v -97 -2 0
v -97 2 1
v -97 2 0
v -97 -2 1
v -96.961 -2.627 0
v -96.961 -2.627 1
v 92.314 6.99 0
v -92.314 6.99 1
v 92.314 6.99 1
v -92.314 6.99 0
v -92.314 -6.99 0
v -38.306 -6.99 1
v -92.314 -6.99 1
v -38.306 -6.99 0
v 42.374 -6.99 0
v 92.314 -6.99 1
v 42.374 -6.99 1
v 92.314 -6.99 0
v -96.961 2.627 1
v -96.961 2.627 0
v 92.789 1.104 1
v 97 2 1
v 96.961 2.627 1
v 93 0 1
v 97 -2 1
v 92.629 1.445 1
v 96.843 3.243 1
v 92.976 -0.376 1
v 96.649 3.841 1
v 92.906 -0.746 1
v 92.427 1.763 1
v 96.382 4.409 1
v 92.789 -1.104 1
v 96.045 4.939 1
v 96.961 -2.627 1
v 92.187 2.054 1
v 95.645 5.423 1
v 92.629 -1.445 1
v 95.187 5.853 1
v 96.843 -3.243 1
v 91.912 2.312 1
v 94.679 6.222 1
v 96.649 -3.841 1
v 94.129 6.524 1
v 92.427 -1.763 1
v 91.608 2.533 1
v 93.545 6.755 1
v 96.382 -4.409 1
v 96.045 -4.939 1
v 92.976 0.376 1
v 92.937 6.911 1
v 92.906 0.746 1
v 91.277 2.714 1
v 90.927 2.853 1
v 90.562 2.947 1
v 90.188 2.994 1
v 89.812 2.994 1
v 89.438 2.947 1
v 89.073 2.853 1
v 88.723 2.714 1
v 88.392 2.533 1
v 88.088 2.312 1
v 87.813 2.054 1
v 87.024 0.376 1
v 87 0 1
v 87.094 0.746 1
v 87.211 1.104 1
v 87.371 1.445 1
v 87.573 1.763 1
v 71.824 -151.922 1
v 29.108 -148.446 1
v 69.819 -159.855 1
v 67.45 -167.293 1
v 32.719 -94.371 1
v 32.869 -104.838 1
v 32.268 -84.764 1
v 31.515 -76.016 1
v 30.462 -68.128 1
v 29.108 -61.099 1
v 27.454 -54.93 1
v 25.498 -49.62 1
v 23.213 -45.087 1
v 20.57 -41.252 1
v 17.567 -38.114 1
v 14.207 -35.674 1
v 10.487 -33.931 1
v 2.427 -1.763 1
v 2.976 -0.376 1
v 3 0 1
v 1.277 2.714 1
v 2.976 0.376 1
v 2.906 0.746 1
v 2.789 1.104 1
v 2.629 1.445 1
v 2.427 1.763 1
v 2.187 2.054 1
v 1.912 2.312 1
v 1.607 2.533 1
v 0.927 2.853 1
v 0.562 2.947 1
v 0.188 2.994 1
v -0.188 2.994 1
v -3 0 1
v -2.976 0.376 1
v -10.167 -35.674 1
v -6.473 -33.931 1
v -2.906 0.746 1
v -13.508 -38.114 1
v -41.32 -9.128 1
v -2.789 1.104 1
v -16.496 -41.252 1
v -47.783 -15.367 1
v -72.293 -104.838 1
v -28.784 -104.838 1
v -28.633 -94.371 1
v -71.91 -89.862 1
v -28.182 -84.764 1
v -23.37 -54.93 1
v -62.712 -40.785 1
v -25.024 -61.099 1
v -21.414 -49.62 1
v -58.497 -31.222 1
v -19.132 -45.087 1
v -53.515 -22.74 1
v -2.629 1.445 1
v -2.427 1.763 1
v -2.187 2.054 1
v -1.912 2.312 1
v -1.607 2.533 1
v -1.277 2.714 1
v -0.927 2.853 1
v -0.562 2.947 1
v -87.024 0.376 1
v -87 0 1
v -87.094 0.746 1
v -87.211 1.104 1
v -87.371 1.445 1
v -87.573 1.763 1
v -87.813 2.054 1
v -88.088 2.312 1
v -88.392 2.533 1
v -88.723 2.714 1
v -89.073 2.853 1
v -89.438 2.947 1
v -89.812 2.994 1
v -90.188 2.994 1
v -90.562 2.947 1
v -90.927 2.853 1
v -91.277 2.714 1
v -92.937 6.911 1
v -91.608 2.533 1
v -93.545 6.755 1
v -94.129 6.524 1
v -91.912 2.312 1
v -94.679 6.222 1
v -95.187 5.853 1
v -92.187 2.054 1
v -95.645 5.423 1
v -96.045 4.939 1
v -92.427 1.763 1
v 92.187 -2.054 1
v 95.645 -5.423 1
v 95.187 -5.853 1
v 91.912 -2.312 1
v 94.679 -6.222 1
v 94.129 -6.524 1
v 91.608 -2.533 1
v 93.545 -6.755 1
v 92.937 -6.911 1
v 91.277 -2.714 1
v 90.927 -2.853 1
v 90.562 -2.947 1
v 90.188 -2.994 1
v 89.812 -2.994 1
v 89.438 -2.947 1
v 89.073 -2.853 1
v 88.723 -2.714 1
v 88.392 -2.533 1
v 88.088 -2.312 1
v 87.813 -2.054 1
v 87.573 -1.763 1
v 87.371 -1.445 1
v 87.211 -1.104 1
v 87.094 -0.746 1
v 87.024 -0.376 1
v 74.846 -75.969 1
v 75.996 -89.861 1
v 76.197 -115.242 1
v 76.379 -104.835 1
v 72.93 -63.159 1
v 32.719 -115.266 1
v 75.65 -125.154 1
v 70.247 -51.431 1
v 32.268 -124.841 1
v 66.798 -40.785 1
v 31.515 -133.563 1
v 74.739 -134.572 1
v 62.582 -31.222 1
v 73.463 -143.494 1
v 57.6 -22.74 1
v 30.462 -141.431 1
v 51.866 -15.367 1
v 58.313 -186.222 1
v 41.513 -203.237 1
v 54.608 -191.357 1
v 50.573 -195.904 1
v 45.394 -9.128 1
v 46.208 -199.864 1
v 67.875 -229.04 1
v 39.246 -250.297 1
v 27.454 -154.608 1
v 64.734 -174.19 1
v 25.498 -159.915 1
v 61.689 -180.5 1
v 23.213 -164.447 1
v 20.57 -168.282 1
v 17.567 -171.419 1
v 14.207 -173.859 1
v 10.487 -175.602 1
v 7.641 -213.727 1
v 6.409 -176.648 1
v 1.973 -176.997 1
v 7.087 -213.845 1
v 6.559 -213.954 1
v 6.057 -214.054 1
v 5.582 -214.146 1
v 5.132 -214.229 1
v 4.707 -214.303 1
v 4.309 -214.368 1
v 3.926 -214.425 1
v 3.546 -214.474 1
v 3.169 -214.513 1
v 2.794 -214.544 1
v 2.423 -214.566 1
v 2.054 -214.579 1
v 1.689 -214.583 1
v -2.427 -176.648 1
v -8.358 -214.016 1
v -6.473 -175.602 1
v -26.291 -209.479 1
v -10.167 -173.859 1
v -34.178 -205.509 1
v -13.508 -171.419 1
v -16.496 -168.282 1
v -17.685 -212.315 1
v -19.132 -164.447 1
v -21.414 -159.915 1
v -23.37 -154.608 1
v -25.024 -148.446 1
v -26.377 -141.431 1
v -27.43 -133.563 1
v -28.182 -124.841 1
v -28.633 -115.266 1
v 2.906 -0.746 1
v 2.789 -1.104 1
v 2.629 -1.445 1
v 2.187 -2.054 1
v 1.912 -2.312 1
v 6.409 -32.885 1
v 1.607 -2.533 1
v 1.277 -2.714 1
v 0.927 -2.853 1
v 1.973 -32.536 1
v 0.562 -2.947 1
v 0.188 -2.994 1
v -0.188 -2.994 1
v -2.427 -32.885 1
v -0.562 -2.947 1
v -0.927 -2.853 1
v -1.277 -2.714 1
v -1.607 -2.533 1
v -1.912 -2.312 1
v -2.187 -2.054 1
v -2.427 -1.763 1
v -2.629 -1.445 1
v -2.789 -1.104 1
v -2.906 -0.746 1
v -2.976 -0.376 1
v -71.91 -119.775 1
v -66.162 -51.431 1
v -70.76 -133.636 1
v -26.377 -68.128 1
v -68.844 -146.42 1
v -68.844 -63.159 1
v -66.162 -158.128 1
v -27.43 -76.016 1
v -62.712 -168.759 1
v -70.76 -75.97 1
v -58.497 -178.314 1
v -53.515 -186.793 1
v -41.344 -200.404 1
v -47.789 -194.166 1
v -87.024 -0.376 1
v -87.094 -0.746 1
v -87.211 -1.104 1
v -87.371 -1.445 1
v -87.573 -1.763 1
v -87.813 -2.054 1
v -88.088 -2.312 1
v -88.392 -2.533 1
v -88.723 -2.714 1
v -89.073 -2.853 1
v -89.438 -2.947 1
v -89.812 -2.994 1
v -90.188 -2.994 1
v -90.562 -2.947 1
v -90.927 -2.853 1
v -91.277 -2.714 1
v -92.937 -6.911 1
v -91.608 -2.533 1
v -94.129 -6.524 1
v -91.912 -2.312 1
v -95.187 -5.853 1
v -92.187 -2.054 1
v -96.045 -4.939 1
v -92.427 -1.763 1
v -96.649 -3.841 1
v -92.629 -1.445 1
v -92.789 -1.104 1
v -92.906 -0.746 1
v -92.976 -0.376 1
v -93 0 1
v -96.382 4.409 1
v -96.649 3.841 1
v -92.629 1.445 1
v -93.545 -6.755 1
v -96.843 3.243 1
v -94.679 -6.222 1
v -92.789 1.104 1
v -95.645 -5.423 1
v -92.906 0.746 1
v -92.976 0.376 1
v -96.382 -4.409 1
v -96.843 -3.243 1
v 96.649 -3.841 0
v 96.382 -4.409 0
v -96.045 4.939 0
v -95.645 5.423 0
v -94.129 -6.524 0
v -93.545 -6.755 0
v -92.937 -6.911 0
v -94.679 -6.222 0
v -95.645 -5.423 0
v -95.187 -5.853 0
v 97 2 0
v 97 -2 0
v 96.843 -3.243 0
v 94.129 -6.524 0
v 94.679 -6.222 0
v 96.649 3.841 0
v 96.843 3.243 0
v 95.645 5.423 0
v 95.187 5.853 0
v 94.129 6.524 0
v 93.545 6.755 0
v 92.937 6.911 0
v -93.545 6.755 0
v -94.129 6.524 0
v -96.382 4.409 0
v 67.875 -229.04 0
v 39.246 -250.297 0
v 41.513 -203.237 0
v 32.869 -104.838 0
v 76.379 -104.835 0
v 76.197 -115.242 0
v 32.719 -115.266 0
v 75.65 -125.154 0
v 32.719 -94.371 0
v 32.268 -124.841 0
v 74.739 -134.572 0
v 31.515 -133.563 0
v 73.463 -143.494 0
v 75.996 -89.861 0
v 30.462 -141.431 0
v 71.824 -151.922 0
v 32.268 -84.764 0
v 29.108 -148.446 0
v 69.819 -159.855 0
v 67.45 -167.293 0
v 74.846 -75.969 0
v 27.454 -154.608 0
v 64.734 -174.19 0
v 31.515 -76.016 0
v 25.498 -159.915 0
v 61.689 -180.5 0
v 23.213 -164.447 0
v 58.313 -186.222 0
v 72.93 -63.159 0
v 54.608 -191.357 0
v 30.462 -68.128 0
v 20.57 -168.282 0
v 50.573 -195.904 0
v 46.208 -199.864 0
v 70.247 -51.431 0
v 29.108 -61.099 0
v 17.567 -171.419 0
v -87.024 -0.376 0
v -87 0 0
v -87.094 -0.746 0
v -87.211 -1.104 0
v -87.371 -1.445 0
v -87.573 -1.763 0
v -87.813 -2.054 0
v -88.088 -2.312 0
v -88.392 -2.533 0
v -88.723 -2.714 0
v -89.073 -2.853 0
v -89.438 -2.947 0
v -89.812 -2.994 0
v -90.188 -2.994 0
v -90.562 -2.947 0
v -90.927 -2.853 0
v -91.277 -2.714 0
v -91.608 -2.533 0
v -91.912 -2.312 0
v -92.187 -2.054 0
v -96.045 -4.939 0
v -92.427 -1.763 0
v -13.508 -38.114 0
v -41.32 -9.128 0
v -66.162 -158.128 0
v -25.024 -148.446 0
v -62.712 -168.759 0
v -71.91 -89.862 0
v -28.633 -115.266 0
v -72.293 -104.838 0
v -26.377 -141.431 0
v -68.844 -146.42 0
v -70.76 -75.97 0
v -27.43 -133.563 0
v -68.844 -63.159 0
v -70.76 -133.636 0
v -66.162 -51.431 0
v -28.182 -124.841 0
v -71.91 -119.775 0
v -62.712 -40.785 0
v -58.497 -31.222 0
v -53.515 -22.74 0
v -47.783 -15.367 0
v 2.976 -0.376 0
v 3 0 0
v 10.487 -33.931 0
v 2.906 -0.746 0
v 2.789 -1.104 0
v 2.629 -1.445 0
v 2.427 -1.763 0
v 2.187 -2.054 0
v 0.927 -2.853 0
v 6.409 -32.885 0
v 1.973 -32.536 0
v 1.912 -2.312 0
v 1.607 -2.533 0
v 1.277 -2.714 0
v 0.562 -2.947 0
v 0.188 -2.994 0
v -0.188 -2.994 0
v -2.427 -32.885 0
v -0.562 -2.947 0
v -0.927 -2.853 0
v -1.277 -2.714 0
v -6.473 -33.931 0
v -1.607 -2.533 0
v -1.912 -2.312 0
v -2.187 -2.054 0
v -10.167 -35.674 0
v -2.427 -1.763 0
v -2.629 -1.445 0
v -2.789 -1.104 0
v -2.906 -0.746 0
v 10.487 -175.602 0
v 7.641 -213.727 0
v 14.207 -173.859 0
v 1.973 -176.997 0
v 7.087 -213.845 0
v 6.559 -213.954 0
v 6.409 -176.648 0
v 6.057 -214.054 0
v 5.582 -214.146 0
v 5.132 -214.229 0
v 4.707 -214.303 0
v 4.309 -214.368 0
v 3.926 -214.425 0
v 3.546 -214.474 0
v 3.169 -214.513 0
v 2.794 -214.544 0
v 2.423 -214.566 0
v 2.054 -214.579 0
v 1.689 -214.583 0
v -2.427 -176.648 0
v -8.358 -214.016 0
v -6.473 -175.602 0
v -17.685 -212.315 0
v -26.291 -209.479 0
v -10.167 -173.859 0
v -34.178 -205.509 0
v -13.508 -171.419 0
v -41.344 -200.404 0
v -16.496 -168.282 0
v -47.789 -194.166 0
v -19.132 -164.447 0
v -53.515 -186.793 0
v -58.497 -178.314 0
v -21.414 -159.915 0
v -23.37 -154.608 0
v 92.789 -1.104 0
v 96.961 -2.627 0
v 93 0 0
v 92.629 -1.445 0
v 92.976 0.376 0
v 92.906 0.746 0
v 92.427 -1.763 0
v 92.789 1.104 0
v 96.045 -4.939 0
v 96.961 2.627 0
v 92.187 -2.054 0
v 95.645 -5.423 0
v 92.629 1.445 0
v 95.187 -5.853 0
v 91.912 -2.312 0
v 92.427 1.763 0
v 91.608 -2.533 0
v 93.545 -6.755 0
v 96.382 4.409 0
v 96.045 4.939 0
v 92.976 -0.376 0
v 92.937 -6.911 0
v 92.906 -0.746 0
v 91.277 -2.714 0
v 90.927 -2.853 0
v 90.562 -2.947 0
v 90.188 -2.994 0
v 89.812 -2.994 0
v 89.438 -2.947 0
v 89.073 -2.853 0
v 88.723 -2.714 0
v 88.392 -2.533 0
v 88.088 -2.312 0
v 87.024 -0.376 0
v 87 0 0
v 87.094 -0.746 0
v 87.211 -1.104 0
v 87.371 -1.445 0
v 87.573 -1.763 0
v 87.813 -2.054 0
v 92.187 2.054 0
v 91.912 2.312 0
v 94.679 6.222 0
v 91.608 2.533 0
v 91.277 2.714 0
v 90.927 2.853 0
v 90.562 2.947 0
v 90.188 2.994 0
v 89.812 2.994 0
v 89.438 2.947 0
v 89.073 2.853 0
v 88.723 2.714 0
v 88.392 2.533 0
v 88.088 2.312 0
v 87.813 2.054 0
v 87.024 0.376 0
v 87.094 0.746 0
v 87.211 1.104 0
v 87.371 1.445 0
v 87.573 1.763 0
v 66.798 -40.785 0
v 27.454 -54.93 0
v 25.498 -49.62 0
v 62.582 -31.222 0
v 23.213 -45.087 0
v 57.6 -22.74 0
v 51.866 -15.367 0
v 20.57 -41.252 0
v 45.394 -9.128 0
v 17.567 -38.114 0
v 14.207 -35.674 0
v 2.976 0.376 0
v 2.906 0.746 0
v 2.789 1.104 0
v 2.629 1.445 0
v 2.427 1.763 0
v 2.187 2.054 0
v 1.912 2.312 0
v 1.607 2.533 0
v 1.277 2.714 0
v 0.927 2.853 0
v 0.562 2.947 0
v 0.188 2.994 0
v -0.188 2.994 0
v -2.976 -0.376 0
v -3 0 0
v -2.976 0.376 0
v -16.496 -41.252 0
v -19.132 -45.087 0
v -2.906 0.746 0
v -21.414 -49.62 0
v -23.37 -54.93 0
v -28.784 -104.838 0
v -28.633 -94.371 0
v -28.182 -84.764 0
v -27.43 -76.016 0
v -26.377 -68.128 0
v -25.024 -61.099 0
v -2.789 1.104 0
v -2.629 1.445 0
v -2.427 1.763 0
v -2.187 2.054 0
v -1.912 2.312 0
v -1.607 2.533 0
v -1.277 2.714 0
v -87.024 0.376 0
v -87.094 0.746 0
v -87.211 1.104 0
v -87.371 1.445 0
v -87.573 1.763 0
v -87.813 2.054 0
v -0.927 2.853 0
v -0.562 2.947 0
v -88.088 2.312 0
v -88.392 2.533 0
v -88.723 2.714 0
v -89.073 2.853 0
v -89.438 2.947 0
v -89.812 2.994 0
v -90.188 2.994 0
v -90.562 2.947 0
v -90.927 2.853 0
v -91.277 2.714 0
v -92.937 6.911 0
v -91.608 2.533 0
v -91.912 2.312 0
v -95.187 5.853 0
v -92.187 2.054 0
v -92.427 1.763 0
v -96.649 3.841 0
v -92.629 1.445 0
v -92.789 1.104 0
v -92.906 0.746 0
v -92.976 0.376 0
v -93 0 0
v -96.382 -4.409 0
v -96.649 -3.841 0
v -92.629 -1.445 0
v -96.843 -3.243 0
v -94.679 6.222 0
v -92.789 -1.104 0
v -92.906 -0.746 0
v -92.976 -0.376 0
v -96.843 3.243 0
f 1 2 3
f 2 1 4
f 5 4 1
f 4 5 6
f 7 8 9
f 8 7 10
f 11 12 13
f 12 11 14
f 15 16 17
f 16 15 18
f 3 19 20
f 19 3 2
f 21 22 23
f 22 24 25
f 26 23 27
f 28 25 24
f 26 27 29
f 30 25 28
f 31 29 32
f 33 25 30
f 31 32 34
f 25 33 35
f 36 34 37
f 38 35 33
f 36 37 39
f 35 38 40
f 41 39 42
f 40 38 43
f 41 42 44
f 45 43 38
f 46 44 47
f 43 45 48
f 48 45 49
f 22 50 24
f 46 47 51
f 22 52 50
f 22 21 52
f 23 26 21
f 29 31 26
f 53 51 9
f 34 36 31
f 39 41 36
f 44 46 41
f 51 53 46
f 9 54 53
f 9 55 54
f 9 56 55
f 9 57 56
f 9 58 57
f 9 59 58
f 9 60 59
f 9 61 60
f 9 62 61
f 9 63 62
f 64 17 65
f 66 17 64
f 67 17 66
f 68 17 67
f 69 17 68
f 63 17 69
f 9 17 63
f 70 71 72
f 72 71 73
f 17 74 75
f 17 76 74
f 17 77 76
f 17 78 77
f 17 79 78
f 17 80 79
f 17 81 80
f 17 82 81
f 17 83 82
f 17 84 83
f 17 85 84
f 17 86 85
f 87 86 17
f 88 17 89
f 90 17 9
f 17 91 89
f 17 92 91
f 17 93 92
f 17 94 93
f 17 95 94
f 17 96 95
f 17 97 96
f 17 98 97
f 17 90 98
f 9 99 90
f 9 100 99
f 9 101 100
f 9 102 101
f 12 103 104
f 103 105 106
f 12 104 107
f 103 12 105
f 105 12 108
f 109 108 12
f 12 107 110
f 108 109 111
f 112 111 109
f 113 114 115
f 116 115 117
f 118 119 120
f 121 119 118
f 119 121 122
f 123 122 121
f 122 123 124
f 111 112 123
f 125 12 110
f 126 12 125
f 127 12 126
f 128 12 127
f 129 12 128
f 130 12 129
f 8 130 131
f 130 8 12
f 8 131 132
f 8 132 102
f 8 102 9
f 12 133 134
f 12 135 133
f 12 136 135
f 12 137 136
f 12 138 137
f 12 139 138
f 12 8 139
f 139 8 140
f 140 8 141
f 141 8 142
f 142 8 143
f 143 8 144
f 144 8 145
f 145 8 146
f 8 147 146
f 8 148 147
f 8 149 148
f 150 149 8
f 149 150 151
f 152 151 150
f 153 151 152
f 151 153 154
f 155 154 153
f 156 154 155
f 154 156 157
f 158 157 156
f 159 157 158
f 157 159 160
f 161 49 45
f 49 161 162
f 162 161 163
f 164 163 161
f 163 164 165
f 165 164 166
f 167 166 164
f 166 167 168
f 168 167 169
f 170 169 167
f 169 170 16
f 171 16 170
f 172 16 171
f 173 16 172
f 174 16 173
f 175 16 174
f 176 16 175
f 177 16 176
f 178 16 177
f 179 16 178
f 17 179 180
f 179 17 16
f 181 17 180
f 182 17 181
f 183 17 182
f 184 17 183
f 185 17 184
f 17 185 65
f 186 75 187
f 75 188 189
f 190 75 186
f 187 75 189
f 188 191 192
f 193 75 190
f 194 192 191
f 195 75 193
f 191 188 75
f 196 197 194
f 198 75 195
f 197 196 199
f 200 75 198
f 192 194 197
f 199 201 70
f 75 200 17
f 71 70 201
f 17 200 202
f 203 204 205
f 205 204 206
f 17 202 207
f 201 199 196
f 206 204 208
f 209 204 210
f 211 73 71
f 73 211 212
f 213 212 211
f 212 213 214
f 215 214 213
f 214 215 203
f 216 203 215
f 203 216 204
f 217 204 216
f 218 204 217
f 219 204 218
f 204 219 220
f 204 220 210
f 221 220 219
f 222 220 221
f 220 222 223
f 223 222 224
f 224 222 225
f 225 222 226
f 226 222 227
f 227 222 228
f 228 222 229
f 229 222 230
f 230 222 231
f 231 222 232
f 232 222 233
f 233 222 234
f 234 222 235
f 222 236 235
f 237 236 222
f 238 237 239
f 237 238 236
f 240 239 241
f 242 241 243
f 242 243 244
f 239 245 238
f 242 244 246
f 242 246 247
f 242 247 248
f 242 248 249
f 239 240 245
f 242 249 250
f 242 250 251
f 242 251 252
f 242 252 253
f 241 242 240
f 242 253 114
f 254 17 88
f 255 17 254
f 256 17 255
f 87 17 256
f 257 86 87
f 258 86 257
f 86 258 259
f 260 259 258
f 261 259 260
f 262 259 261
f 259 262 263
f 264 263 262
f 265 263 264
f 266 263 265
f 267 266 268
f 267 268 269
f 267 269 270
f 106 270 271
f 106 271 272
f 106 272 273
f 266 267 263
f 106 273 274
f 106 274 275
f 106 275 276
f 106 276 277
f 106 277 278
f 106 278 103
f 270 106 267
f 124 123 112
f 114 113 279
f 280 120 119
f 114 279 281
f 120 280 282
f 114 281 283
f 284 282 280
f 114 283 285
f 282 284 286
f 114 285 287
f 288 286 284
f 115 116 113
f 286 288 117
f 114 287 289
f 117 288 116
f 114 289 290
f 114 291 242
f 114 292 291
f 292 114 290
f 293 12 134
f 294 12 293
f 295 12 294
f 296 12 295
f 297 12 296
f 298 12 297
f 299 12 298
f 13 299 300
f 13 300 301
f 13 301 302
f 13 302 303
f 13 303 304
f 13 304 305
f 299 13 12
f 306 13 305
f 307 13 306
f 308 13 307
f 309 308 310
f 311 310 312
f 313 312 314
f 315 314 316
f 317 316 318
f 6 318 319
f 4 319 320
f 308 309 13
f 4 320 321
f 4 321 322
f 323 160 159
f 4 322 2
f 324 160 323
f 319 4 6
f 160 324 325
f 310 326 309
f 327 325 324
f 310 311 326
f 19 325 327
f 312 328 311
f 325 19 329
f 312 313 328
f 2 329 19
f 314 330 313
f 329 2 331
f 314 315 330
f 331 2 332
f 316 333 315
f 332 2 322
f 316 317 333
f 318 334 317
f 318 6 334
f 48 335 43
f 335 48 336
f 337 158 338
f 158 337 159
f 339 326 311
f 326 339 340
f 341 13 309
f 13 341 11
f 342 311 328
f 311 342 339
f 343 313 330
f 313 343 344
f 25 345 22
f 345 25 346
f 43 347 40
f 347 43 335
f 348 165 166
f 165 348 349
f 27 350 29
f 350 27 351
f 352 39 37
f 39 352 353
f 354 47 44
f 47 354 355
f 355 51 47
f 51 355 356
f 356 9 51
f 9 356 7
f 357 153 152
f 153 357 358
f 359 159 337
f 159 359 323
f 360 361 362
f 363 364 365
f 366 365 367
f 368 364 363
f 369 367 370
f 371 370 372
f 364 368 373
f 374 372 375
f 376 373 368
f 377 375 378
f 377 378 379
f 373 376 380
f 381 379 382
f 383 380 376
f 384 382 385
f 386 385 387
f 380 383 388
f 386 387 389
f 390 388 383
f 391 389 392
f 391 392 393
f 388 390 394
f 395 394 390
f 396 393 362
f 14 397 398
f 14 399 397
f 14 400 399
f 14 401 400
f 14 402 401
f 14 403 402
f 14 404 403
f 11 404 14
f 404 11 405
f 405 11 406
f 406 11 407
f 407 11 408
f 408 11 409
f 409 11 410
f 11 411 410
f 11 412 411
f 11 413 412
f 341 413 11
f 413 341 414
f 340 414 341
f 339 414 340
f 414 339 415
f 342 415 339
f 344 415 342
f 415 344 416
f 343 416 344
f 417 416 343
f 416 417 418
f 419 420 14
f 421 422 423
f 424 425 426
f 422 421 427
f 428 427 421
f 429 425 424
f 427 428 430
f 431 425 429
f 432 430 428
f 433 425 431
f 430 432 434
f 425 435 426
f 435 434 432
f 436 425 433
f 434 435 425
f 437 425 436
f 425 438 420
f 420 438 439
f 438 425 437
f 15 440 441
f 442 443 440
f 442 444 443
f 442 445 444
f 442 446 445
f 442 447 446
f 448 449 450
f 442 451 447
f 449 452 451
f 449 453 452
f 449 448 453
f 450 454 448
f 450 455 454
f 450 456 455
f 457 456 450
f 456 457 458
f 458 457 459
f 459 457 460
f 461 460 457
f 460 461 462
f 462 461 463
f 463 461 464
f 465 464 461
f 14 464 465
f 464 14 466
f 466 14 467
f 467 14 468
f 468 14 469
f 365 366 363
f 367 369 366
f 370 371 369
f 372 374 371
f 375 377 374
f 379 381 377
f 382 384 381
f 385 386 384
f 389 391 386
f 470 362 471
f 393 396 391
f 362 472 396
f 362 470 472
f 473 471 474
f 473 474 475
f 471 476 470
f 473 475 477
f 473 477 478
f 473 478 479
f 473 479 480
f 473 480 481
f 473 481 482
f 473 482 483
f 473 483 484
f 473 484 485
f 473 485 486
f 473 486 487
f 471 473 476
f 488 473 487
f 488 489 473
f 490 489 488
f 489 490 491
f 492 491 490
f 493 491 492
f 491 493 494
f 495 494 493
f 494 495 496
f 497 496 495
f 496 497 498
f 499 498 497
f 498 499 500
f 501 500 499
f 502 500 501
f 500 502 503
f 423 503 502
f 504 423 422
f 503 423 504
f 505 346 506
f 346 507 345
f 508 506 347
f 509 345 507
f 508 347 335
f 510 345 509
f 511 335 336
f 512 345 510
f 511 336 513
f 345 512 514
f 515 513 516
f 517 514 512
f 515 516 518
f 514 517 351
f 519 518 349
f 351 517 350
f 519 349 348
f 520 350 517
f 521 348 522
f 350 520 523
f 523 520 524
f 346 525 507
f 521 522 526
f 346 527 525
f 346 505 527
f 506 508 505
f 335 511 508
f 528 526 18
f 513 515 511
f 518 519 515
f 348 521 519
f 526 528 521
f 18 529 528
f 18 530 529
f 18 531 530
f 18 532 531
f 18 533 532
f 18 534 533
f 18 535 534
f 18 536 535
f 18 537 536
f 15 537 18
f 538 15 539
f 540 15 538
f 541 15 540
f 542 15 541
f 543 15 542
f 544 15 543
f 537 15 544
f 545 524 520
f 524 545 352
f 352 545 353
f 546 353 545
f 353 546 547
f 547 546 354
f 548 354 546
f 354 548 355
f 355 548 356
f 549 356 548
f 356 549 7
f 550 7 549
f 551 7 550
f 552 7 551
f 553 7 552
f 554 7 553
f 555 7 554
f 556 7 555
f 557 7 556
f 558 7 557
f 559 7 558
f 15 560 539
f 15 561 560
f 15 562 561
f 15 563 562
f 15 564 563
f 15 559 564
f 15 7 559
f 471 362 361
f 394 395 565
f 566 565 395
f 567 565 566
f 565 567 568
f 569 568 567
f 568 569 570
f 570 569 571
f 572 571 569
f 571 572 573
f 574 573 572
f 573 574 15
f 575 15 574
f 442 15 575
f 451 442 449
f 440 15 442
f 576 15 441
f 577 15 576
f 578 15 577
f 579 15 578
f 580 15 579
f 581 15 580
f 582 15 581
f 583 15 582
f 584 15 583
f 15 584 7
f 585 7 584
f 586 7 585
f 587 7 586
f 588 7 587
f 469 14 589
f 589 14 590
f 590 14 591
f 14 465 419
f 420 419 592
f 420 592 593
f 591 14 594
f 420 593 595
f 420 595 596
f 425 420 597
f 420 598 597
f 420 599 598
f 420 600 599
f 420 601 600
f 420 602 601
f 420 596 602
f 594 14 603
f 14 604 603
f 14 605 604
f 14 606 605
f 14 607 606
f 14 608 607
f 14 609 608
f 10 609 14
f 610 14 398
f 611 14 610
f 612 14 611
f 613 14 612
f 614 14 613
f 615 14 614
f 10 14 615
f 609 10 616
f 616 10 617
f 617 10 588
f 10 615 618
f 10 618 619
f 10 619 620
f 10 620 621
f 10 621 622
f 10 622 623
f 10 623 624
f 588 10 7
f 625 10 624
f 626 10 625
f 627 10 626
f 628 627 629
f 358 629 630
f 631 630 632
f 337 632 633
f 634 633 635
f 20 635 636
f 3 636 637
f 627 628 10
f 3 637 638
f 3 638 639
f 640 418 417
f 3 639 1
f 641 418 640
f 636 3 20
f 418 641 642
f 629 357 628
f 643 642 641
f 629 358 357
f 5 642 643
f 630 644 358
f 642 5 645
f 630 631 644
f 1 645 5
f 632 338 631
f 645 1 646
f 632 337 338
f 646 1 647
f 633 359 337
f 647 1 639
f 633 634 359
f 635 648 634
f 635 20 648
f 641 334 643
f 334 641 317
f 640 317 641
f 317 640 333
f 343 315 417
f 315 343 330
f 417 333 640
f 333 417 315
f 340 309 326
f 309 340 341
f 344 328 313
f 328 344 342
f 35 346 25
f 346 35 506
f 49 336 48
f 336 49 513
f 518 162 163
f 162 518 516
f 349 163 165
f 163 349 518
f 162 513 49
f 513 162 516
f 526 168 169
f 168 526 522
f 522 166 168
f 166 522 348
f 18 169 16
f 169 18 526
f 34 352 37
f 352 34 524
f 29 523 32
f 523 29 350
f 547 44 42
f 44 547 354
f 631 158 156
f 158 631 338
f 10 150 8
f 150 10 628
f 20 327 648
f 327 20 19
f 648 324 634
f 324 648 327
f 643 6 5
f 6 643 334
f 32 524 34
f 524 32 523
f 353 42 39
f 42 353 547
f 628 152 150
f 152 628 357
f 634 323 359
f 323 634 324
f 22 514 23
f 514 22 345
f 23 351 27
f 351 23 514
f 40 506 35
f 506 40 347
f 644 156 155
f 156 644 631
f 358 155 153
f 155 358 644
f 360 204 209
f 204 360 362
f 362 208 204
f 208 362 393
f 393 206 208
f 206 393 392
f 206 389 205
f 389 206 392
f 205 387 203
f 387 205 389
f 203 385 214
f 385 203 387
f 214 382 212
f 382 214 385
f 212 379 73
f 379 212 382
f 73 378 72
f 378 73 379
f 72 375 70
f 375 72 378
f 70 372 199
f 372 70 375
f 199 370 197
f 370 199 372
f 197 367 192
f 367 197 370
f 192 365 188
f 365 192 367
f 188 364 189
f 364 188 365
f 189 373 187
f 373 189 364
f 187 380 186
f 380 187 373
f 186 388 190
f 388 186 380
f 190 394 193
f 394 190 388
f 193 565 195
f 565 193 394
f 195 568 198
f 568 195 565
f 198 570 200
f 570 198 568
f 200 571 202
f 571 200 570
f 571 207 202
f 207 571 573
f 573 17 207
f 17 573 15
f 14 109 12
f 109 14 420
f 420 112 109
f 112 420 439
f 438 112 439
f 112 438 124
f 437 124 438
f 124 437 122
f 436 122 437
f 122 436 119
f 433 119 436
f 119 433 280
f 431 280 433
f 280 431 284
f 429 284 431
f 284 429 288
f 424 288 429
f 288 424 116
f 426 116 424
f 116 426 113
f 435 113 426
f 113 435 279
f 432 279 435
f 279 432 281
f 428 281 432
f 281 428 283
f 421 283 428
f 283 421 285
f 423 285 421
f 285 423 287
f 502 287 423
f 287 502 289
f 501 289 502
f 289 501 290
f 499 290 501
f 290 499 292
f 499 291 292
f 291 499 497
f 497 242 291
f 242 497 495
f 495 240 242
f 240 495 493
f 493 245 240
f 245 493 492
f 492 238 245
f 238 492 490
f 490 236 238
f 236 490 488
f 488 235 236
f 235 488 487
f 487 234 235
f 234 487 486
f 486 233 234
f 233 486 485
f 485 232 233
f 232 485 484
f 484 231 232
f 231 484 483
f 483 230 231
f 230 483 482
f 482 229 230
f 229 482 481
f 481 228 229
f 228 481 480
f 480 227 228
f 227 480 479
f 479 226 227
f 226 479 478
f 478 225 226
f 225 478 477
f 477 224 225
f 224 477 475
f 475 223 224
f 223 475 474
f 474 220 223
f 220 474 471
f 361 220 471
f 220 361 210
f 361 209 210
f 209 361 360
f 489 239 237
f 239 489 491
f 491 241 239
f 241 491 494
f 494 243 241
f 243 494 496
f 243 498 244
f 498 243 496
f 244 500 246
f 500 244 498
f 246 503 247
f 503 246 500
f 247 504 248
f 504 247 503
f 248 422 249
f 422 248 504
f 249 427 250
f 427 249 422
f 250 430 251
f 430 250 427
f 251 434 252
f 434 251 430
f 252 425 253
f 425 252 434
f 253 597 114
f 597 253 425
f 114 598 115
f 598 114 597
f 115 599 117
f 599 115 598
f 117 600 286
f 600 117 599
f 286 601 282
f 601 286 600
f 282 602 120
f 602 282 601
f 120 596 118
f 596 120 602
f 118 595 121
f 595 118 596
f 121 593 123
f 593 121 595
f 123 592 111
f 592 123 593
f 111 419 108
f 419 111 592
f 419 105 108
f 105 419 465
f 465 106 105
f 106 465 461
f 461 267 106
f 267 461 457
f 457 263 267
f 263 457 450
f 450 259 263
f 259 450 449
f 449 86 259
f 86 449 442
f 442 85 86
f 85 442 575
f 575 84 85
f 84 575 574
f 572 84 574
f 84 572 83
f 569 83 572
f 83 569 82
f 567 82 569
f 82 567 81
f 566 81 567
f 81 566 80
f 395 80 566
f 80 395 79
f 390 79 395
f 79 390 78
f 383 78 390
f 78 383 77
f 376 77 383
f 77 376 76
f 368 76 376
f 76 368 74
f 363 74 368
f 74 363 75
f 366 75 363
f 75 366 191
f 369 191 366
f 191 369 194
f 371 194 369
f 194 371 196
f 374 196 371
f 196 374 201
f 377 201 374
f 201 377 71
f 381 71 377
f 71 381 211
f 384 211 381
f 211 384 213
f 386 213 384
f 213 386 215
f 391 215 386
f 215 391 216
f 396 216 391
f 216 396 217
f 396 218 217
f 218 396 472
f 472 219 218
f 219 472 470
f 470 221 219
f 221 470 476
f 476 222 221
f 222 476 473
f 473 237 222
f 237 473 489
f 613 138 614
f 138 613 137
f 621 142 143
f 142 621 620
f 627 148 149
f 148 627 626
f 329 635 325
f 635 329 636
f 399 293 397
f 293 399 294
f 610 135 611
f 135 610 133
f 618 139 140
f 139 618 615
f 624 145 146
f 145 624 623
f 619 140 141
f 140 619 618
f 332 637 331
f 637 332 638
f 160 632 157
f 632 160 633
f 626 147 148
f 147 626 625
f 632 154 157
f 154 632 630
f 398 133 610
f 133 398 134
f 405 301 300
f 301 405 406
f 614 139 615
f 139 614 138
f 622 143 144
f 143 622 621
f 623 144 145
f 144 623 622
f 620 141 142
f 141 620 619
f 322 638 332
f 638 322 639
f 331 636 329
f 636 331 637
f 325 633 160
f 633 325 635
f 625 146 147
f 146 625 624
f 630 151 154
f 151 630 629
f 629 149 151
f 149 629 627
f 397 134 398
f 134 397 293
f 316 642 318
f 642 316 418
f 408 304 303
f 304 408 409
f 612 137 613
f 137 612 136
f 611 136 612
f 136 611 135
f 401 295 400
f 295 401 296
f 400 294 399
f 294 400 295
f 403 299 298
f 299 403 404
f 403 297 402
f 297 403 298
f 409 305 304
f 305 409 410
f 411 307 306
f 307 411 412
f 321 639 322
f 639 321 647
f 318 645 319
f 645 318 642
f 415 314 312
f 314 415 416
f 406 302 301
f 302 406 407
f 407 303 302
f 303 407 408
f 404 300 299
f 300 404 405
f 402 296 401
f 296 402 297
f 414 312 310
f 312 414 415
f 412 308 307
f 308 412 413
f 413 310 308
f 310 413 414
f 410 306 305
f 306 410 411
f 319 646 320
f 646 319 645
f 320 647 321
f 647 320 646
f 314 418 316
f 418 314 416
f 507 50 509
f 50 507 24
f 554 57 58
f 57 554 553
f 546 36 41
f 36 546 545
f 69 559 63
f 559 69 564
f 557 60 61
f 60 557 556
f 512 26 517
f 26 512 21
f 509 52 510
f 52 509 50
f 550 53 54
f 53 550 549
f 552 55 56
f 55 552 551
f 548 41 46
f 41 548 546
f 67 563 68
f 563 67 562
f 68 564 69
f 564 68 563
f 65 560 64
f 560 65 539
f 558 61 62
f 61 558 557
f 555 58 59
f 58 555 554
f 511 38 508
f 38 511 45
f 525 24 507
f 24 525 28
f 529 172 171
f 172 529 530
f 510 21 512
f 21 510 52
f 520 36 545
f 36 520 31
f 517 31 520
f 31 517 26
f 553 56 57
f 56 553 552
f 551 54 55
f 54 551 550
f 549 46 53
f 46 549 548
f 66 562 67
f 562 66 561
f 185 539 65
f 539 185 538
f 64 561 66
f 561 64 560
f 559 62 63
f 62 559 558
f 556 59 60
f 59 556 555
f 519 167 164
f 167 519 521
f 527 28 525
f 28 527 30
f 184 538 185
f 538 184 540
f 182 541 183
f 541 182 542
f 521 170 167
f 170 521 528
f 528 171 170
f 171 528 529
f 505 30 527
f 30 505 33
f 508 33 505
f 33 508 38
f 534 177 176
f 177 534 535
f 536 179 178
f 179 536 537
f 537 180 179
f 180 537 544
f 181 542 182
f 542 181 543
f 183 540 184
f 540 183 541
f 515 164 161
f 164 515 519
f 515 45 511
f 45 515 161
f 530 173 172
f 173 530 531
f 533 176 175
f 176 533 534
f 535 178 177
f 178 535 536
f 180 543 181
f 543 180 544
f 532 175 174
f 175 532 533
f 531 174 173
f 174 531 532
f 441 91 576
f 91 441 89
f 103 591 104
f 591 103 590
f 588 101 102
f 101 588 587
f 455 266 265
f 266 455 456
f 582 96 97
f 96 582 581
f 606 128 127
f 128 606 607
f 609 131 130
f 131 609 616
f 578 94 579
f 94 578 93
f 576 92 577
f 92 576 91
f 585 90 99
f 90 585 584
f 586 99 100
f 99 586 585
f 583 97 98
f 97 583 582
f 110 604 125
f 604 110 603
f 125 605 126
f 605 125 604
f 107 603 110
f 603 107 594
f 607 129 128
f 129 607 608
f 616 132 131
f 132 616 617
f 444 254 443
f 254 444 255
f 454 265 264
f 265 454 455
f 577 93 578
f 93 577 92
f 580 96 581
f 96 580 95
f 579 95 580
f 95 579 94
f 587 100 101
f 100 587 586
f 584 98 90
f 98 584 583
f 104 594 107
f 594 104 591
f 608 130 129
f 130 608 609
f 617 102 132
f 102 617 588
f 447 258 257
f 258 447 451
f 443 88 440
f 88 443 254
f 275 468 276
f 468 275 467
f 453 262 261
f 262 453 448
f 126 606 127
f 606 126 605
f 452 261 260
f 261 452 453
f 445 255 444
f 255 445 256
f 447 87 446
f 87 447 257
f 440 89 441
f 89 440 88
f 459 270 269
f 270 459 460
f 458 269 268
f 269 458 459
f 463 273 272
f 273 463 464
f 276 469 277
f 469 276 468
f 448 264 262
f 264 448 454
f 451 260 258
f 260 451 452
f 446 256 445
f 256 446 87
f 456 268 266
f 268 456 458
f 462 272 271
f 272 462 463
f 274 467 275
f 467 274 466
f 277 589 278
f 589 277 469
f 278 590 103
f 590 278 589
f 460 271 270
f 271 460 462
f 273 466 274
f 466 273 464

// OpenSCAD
$fn = 50;


difference() {
	union() {
		translate(v = [0, 0, 0]) {
			rotate(a = [0, 0, 0]) {
				hull() {
					translate(v = [-92.0000000000, 2.0000000000, 0]) {
						rotate(a = [0, 0, 0]) {
							translate(v = [0, 0, 0]) {
								rotate(a = [0, 0, 0]) {
									cylinder(h = 1, r = 5);
								}
							}
						}
					}
					translate(v = [92.0000000000, 2.0000000000, 0]) {
						rotate(a = [0, 0, 0]) {
							translate(v = [0, 0, 0]) {
								rotate(a = [0, 0, 0]) {
									cylinder(h = 1, r = 5);
								}
							}
						}
					}
					translate(v = [-92.0000000000, -2.0000000000, 0]) {
						rotate(a = [0, 0, 0]) {
							translate(v = [0, 0, 0]) {
								rotate(a = [0, 0, 0]) {
									cylinder(h = 1, r = 5);
								}
							}
						}
					}
					translate(v = [92.0000000000, -2.0000000000, 0]) {
						rotate(a = [0, 0, 0]) {
							translate(v = [0, 0, 0]) {
								rotate(a = [0, 0, 0]) {
									cylinder(h = 1, r = 5);
								}
							}
						}
					}
				}
			}
		}
		translate(v = [0, 0, 0]) {
			rotate(a = [0, 0, 0]) {
				linear_extrude(height = 1) {
					text(font = "DejaVu Sans Mono:style=Bold", halign = "center", size = 209.0000000000, text = "Q", valign = "top");
				}
			}
		}
	}
	union() {
		translate(v = [-90.0000000000, 0.0000000000, -125.0000000000]) {
			rotate(a = [0, 0, 0]) {
				cylinder(h = 250, r = 3.0000000000);
			}
		}
		translate(v = [90.0000000000, 0.0000000000, -125.0000000000]) {
			rotate(a = [0, 0, 0]) {
				cylinder(h = 250, r = 3.0000000000);
			}
		}
		translate(v = [90.0000000000, 0.0000000000, -125.0000000000]) {
			rotate(a = [0, 0, 0]) {
				cylinder(h = 250, r = 3.0000000000);
			}
		}
		translate(v = [0, 0, -125.0000000000]) {
			rotate(a = [0, 0, 0]) {
				cylinder(h = 250, r = 3.0000000000);
			}
		}
	}
}
